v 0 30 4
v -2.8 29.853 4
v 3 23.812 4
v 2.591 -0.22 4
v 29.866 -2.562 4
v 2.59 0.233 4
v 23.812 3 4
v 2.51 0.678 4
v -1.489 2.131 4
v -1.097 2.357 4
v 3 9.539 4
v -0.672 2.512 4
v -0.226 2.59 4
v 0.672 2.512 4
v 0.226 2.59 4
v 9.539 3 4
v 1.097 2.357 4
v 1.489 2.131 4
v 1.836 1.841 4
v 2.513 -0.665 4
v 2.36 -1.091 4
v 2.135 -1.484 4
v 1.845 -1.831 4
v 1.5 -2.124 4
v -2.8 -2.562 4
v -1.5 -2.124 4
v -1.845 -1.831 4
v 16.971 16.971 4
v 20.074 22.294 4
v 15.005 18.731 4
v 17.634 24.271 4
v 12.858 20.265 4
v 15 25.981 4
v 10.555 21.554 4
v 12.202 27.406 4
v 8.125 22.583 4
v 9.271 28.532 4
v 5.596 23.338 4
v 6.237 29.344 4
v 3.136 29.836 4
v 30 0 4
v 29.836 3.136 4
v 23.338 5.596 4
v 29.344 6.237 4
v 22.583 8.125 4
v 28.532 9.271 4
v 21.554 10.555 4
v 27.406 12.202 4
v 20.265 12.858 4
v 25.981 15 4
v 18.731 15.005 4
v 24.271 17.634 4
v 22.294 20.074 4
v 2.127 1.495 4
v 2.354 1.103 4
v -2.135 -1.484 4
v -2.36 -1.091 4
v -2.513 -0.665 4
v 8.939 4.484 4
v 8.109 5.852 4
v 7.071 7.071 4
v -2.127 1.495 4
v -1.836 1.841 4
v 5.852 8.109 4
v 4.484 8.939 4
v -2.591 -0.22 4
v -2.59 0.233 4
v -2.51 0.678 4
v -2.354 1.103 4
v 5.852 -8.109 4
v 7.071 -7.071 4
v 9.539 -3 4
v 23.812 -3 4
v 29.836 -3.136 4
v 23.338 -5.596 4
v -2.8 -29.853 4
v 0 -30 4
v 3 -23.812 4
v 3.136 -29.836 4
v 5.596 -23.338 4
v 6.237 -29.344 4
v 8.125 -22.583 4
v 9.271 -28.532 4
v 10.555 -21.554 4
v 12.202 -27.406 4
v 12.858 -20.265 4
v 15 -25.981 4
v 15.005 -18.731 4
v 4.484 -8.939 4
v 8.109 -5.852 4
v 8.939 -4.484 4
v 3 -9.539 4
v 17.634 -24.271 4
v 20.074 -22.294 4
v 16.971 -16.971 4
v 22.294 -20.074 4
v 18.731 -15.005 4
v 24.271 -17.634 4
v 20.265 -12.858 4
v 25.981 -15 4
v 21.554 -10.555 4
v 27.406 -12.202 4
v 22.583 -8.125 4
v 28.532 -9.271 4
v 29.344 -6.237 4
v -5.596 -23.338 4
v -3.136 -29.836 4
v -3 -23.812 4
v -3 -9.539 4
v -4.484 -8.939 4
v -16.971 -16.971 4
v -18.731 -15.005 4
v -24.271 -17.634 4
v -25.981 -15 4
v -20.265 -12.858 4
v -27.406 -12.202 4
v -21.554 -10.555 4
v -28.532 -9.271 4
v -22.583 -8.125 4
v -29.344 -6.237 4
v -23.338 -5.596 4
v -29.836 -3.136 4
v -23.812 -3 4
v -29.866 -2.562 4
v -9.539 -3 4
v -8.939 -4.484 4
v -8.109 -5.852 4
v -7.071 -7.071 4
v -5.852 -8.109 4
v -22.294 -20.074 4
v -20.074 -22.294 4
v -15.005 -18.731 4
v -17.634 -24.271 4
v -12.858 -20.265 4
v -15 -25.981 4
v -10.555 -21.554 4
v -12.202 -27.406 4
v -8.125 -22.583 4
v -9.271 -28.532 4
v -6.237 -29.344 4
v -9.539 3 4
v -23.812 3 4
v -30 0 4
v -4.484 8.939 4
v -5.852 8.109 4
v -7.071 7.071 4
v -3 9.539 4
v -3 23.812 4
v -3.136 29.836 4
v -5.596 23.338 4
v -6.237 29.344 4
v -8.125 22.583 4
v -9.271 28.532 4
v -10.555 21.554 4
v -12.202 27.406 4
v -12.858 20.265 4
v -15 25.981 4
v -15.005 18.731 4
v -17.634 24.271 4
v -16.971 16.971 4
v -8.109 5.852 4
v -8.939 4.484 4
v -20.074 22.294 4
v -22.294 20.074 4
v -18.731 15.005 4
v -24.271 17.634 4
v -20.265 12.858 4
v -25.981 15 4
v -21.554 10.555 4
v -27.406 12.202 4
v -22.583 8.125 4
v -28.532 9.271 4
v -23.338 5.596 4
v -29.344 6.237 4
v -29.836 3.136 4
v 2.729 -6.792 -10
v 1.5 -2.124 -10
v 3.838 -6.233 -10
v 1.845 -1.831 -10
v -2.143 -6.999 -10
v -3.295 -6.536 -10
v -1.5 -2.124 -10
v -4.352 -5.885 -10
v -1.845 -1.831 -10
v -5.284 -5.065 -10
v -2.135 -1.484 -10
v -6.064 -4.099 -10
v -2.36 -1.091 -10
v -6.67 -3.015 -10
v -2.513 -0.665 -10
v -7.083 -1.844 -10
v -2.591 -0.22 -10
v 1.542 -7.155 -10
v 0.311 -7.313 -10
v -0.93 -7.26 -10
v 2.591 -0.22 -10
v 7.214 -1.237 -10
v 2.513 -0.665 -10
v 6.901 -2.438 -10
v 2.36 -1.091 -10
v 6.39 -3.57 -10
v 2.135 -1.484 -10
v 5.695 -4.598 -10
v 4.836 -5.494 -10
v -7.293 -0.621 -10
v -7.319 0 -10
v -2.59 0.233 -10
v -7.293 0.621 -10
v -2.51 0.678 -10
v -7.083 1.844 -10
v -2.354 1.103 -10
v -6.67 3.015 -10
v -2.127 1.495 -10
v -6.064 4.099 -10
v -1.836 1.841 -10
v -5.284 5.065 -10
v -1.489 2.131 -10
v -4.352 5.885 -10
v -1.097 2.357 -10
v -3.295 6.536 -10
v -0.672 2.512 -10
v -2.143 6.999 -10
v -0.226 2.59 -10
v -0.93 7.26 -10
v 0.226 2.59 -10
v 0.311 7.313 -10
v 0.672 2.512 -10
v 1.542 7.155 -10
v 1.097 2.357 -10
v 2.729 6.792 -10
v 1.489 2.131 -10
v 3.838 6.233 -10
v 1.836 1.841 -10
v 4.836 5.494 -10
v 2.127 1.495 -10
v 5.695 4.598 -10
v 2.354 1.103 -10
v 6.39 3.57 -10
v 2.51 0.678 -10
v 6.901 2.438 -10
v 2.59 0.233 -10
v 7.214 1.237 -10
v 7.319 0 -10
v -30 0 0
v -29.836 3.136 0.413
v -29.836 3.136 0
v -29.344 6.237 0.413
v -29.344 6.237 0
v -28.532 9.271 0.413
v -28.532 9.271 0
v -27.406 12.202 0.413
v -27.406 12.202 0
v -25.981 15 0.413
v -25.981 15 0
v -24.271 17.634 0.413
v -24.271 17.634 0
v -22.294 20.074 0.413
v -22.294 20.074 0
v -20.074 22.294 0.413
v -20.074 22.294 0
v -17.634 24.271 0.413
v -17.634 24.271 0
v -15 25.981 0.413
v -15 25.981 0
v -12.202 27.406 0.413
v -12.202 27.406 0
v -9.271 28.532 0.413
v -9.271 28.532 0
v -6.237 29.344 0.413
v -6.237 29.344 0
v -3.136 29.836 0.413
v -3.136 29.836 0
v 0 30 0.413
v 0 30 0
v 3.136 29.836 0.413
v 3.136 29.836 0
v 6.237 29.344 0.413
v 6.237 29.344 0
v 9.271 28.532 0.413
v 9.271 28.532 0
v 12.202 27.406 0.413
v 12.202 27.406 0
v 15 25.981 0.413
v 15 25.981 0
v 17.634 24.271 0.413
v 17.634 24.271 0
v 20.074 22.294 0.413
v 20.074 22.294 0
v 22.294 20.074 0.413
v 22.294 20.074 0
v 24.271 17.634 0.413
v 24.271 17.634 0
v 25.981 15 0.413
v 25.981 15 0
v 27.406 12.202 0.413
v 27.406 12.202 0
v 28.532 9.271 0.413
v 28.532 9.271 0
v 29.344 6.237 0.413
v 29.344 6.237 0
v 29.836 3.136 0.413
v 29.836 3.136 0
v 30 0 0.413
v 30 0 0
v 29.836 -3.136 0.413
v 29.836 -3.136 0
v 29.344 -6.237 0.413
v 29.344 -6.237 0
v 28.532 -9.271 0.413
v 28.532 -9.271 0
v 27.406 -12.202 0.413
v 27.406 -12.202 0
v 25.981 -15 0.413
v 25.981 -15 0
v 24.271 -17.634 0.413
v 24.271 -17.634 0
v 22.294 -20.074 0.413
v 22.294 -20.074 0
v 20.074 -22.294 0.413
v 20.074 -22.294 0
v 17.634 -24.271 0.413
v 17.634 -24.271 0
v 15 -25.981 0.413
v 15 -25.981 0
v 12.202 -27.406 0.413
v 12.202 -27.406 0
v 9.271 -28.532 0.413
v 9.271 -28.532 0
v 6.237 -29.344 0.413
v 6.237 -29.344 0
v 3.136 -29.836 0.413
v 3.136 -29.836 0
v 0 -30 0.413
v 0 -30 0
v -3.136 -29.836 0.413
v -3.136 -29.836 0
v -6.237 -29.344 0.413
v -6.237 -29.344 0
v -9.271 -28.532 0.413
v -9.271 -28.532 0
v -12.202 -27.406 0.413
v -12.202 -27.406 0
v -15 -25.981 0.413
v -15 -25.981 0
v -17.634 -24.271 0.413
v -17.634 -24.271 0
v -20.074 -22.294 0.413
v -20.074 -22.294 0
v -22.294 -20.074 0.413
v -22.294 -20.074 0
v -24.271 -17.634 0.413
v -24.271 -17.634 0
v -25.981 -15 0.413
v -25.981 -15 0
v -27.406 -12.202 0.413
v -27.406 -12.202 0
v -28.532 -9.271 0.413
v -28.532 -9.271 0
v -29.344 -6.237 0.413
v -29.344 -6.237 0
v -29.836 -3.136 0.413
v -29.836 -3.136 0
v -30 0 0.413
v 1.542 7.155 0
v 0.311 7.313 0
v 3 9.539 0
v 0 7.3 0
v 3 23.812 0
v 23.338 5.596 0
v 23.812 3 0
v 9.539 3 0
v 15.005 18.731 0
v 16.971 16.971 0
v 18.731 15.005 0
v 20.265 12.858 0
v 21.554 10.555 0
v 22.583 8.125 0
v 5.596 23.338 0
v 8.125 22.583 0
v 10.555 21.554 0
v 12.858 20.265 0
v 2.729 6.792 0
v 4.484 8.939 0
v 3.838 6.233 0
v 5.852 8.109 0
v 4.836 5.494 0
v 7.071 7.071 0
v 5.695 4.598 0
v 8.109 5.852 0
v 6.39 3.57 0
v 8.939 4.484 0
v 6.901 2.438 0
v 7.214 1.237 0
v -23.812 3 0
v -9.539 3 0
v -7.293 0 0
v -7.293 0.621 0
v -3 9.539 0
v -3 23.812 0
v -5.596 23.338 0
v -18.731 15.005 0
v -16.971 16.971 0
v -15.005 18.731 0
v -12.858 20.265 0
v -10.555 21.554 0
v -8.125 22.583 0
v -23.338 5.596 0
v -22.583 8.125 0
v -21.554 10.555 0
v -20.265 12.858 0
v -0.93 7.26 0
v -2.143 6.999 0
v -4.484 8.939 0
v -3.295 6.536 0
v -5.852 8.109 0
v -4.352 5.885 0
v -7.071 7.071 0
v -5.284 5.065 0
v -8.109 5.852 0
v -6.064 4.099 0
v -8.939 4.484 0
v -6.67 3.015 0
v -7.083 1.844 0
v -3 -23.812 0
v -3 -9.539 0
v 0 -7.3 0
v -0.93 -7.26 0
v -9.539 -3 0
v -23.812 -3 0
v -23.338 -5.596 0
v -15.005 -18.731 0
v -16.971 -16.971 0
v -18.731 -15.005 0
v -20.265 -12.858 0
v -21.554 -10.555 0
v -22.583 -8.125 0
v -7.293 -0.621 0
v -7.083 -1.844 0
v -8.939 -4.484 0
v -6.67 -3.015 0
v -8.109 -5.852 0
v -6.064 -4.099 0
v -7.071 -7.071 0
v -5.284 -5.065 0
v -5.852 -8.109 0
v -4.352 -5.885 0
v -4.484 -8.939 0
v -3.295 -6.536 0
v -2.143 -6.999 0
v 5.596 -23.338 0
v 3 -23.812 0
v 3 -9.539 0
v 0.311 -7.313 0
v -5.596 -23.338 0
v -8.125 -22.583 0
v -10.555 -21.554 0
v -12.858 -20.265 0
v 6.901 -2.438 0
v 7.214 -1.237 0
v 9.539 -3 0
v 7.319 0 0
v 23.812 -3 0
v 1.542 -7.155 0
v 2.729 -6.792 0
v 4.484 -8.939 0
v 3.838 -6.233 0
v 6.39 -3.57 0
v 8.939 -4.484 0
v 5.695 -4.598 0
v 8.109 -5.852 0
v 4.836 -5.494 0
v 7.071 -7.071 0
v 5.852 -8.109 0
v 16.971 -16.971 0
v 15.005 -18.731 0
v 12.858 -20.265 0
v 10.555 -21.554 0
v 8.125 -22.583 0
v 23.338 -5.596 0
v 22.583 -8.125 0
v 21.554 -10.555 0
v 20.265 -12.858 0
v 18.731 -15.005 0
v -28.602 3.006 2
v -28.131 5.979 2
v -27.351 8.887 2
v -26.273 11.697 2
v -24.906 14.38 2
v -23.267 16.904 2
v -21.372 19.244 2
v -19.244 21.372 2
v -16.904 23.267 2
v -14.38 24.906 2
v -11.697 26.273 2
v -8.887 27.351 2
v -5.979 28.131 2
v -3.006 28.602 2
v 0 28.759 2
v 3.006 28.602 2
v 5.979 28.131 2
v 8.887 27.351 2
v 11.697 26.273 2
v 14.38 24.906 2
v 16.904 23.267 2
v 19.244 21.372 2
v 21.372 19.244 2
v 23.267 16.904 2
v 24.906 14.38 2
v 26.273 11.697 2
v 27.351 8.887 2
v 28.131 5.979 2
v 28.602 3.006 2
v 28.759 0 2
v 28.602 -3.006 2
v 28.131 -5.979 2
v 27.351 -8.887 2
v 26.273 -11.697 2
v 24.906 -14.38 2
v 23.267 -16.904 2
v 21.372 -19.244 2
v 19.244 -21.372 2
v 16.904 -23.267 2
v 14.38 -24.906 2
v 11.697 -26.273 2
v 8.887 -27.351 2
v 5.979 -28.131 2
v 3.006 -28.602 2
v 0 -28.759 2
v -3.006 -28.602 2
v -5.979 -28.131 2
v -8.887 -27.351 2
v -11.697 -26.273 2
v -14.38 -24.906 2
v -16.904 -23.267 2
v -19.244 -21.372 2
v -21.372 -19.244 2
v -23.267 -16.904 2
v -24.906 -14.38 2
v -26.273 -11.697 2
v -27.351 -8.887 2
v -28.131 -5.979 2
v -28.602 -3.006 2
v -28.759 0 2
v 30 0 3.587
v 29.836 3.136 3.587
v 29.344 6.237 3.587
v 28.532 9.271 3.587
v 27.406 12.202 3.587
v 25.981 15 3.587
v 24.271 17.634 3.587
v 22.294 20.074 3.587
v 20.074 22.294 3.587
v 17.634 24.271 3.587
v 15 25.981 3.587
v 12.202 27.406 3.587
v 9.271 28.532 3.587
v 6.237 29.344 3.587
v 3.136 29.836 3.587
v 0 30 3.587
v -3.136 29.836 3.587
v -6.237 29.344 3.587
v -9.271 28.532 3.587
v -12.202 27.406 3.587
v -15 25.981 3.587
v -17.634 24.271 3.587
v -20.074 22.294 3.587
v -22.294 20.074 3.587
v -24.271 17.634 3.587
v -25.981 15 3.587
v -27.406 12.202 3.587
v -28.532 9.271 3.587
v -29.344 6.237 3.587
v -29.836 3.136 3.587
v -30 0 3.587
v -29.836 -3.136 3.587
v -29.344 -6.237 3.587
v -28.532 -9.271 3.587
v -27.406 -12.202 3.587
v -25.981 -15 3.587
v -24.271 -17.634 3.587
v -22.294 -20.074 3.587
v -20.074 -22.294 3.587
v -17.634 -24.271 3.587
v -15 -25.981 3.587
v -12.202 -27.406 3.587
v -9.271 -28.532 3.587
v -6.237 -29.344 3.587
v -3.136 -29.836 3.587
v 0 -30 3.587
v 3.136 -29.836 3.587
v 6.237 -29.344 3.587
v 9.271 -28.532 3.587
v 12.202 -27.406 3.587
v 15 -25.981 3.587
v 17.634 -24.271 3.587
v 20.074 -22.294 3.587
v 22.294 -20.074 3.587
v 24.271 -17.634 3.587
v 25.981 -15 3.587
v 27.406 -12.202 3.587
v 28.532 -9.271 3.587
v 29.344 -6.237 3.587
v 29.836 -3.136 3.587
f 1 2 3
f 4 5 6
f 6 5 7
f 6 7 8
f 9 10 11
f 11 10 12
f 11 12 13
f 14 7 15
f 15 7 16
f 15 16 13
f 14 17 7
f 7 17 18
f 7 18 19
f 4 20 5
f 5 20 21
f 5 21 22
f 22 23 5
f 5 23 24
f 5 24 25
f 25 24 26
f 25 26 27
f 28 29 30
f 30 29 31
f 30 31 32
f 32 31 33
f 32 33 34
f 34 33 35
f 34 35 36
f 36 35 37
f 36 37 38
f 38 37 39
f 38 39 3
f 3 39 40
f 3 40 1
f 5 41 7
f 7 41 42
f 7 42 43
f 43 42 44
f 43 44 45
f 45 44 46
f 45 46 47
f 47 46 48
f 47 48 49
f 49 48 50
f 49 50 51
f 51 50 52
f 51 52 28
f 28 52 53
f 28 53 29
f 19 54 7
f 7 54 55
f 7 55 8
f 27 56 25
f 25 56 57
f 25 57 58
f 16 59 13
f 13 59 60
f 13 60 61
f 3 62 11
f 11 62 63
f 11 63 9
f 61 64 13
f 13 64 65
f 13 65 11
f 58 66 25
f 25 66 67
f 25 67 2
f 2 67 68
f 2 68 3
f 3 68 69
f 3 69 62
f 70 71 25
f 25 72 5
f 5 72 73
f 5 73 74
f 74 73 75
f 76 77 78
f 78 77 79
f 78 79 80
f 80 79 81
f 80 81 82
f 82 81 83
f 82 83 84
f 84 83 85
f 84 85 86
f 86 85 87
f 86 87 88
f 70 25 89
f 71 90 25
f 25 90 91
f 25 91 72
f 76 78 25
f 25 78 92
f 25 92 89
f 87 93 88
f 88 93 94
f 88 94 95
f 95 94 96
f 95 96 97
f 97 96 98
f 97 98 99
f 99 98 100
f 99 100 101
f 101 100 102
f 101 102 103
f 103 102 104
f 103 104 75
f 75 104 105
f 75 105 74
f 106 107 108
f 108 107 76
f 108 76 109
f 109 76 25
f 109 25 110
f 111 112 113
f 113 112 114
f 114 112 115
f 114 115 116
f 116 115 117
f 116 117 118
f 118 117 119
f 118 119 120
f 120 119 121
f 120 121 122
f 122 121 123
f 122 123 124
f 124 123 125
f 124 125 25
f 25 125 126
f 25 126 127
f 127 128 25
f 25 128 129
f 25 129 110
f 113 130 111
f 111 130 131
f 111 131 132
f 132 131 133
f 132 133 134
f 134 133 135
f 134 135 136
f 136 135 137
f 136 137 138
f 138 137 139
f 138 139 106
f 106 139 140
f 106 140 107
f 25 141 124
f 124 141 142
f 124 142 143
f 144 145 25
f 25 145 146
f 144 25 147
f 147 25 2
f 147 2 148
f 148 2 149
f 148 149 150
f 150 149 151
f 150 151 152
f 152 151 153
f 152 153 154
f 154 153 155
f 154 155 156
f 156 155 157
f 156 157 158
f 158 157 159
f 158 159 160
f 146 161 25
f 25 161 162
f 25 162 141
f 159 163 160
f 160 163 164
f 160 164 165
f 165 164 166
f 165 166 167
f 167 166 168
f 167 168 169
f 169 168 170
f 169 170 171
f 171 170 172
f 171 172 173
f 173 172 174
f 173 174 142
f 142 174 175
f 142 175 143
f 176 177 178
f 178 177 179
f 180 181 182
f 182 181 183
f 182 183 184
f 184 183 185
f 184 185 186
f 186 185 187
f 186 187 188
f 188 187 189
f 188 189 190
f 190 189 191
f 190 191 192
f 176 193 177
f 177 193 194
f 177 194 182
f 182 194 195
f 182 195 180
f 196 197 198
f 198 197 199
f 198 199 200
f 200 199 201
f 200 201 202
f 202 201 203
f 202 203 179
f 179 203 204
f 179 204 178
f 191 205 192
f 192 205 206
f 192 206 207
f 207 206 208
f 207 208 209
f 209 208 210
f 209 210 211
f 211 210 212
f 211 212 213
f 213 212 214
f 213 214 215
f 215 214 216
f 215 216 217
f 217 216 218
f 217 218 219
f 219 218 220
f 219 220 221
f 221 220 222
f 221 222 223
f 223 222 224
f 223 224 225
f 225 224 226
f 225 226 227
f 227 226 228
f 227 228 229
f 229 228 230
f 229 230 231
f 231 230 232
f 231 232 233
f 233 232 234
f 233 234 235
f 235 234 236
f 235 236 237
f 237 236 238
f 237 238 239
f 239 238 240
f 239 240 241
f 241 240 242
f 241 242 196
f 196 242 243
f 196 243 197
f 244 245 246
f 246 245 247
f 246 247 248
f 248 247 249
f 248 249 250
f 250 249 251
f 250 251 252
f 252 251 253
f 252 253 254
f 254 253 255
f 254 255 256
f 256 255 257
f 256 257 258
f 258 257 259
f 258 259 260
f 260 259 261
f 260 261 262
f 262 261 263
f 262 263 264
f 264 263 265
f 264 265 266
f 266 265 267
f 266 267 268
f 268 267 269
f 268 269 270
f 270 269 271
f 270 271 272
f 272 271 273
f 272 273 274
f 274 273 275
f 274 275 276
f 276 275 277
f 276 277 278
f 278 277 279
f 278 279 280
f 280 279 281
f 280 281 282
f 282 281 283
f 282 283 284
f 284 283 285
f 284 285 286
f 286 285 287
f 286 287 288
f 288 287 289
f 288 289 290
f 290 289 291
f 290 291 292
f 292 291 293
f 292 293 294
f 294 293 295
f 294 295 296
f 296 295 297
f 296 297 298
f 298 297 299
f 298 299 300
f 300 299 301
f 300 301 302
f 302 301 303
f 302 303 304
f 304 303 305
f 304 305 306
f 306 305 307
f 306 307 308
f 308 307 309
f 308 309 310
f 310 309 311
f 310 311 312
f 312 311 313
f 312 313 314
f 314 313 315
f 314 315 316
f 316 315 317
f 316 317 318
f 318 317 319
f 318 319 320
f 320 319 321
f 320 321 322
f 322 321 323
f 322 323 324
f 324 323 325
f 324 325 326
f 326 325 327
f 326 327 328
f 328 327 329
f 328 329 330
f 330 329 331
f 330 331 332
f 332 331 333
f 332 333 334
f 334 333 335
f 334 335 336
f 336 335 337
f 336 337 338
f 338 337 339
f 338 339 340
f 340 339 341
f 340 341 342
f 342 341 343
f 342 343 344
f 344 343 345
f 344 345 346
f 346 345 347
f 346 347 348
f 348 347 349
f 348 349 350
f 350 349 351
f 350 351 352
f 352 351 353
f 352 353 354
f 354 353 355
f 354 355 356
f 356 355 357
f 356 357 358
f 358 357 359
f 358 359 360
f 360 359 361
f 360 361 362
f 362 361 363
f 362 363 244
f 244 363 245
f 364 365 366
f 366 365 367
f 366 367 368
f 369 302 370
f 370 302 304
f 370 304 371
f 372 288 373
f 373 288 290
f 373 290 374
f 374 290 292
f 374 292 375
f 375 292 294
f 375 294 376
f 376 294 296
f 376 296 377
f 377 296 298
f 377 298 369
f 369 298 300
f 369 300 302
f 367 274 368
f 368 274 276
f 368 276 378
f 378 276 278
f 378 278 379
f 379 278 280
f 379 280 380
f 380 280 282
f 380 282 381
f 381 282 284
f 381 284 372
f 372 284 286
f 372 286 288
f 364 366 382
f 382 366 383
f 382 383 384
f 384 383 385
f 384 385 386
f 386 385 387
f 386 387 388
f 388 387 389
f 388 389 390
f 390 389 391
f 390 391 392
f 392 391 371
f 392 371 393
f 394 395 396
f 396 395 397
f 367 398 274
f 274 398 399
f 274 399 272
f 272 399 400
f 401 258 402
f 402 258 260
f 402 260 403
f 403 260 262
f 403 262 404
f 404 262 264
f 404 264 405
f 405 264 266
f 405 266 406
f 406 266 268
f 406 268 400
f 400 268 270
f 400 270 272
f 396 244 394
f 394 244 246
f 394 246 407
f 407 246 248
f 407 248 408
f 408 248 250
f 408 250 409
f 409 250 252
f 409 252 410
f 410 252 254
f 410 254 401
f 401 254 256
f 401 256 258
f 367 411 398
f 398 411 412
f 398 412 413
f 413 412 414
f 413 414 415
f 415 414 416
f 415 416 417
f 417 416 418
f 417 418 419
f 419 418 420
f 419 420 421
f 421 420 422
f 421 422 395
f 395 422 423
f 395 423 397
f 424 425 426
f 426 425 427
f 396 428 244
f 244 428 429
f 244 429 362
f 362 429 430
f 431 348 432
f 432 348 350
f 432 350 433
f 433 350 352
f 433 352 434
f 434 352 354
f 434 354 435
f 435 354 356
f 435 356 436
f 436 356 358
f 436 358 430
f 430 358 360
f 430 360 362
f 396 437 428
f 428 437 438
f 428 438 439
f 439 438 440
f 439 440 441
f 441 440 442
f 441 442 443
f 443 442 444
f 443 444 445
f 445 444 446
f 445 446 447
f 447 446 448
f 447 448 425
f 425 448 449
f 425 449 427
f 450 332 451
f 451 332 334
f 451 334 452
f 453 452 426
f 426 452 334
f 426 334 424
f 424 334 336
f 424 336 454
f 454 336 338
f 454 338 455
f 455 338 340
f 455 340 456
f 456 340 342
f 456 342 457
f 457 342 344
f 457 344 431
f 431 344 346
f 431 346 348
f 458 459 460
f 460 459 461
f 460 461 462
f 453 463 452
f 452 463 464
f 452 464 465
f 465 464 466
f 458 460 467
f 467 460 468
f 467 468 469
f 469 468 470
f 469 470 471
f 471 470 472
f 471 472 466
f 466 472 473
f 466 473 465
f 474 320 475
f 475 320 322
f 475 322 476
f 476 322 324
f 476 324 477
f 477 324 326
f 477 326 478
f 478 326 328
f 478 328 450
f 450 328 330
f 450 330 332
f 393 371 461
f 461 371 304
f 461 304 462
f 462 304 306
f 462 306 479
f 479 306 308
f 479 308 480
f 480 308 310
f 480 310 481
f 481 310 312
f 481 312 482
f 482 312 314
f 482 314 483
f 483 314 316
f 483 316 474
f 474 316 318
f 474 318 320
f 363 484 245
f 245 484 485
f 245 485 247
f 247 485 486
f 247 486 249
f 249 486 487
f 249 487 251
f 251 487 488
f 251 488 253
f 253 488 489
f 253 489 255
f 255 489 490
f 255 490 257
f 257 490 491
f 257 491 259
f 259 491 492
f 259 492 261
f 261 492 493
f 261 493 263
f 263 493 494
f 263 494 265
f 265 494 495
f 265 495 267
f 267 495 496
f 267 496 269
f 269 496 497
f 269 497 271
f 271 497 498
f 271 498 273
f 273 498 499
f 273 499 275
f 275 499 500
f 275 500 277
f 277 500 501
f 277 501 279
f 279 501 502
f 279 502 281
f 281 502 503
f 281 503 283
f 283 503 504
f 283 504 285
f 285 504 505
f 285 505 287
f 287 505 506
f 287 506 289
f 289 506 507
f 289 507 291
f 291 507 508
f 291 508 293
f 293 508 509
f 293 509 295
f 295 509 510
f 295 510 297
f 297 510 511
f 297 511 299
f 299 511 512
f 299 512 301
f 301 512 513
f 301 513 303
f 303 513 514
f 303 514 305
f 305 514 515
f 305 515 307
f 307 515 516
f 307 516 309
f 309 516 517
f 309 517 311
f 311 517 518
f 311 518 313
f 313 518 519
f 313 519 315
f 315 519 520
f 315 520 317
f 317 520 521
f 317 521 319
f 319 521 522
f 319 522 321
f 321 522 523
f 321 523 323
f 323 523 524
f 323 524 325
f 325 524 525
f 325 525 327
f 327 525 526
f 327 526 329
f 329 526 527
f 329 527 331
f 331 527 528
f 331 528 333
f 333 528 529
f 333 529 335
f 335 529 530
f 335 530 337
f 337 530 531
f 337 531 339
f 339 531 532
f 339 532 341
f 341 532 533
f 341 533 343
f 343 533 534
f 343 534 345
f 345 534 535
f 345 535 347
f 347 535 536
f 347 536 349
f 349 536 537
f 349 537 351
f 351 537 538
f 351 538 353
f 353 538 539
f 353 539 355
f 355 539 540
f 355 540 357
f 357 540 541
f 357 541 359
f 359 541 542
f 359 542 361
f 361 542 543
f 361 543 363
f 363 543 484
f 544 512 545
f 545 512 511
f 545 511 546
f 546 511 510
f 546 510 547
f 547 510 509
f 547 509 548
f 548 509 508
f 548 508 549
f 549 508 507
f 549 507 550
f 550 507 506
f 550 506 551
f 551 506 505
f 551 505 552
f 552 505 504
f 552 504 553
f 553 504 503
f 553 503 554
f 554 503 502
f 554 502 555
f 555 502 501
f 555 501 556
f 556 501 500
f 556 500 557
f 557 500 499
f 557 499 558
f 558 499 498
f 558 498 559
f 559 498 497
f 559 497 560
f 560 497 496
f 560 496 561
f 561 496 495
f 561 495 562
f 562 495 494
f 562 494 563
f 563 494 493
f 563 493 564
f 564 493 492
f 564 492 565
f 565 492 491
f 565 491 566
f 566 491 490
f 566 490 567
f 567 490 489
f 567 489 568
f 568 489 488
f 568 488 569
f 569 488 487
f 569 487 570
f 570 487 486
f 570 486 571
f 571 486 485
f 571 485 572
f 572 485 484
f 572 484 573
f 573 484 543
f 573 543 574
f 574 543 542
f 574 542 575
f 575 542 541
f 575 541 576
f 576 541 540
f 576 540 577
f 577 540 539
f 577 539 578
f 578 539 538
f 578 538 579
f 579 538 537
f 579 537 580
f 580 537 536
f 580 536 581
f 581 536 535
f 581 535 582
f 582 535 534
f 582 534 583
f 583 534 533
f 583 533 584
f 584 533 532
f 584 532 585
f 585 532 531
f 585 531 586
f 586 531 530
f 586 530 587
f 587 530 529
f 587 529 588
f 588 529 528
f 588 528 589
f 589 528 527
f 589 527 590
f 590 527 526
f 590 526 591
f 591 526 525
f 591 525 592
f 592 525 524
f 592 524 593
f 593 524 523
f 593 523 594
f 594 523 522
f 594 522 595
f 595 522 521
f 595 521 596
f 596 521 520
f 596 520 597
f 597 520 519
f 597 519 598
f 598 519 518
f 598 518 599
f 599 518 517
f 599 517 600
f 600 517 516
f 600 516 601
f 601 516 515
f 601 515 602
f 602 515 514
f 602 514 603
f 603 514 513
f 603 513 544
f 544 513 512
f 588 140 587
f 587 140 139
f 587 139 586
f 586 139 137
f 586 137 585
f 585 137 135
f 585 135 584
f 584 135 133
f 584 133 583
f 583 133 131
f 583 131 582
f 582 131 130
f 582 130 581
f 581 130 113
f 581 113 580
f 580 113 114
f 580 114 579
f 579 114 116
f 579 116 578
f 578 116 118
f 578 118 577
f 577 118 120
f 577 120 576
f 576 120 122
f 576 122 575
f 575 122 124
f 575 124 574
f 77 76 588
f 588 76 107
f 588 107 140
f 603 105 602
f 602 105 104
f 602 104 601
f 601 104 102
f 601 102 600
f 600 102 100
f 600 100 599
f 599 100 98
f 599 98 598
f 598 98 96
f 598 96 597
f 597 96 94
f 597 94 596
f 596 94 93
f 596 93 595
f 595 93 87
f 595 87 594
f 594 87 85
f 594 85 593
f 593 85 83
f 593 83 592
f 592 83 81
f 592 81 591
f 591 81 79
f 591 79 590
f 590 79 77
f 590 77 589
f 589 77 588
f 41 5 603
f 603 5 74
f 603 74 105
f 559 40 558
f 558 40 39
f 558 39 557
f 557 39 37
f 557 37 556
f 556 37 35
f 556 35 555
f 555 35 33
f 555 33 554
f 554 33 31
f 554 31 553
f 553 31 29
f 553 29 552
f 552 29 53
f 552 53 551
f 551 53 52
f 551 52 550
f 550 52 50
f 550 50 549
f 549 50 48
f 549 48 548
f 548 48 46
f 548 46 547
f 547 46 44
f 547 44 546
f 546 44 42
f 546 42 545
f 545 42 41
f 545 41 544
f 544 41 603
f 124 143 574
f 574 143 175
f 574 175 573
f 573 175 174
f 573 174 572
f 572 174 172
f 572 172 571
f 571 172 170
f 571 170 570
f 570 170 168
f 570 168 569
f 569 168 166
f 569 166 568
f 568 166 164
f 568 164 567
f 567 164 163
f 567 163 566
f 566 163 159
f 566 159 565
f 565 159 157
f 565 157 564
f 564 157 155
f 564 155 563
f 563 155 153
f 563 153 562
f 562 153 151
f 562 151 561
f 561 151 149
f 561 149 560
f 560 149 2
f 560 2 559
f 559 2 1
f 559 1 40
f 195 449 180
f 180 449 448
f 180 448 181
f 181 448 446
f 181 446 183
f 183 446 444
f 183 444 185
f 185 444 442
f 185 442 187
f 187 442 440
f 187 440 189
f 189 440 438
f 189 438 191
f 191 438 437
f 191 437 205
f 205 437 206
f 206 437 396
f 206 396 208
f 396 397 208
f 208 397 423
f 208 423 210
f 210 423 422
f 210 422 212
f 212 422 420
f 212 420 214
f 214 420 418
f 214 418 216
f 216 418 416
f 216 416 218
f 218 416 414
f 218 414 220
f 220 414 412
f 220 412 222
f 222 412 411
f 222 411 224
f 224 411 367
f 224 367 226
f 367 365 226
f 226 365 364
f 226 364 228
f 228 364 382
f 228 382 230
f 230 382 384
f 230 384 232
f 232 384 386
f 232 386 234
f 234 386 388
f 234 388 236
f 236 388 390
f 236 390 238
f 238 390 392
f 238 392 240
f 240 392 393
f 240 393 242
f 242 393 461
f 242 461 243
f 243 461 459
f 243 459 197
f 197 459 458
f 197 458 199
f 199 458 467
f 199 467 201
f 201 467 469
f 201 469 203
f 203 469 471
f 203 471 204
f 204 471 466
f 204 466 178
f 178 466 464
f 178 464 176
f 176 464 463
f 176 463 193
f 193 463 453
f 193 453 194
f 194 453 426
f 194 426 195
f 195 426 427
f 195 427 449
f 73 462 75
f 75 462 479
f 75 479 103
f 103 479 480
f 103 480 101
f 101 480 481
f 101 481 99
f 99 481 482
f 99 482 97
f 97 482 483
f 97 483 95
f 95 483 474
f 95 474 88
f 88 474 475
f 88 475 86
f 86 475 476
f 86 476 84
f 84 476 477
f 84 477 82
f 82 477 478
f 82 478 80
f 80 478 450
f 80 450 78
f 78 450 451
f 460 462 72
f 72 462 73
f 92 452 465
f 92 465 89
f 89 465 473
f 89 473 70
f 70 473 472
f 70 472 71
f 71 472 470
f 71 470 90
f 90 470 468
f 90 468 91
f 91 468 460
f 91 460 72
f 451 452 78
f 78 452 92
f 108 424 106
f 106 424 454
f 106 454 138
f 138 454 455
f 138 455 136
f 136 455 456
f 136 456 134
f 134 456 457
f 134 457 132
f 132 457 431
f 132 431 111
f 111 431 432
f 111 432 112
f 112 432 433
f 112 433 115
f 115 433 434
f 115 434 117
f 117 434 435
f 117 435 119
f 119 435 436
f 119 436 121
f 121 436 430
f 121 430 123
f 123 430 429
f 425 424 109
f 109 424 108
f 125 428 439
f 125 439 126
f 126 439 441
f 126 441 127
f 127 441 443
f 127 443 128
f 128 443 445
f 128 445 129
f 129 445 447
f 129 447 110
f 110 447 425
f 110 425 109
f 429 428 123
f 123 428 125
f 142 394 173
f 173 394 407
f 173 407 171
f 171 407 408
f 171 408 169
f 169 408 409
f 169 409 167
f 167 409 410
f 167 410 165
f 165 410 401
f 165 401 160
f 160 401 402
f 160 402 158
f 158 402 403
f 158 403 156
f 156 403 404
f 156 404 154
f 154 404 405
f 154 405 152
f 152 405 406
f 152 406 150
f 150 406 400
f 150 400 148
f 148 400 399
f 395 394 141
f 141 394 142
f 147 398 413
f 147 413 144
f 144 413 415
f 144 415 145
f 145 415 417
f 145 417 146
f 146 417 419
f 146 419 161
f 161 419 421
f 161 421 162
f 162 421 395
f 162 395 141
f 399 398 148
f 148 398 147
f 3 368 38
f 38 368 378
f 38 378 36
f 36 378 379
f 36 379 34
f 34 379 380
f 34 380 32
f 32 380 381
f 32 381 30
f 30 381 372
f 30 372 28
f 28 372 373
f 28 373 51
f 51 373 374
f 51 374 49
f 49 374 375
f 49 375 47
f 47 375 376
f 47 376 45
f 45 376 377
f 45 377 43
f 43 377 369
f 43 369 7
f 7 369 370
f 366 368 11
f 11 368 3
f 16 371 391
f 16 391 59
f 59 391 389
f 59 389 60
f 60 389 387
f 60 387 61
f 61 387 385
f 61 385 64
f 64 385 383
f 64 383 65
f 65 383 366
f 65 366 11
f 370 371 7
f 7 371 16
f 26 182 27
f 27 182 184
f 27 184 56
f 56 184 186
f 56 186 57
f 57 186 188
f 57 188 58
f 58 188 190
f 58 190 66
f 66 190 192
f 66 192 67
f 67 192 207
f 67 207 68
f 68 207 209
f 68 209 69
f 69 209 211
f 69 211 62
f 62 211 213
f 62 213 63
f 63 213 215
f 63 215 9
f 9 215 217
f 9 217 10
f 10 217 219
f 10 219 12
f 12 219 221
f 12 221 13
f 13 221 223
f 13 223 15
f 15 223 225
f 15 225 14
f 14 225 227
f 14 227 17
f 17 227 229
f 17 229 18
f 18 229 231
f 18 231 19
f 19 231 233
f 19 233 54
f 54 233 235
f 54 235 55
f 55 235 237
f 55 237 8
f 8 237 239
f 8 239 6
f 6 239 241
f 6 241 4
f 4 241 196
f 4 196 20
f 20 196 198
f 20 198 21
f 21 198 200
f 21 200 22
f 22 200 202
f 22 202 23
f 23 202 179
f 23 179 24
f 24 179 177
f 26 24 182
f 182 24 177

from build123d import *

# Parameters (mm, degrees)
CROQUIS1_R              = 30
SALIENTE_EXTRUIR1_DEPTH = 4
CROQUIS4_R              = 7.319391613
SALIENTE_EXTRUIR2_DEPTH = 10
CORTAR_EXTRUIR1_DEPTH   = 10
CORTAR_EXTRUIR2_DEPTH   = 15


with BuildPart() as part:
    # Croquis1 → Saliente-Extruir1 (new body)
    with BuildSketch(Plane.XY):
        Circle(CROQUIS1_R)
    extrude(amount=SALIENTE_EXTRUIR1_DEPTH)

    # Croquis3 → Cortar-Revolución1 (revolve, cut)
    with BuildSketch(Plane(origin=(0, 0, 0), x_dir=(1, 0, 0), z_dir=(0, 1, 0))):
        Polygon((-30, -4), (-30, -3.587135196), (-28.759048166, -2), (-30, -0.412864804), (-30, 0), (-32.403502023, 0), (-32.403502023, -4), align=None)
    revolve(axis=Axis((0, 0, -0.500745856), (0, 0, 1)), mode=Mode.SUBTRACT)

    # Croquis4 → Saliente-Extruir2 (add)
    with BuildSketch(Plane(origin=(0, 0, 0), x_dir=(-1, 0, 0), z_dir=(0, 0, -1))):
        Circle(CROQUIS4_R)
    extrude(amount=SALIENTE_EXTRUIR2_DEPTH)

    # Croquis5 → Cortar-Extruir1 (cut)
    with BuildSketch(Plane(origin=(0, 0, 0), x_dir=(-1, 0, 0), z_dir=(0, 0, -1))):
        with BuildLine():
            Line((-23.8117618, -3), (-9.539392014, -3))
            ThreePointArc((-9.539392014, -3), (-7.071067812, -7.071067812), (-3, -9.539392014))
            Line((-3, -9.539392014), (-3, -23.8117618))
            ThreePointArc((-3, -23.8117618), (-16.970562748, -16.970562748), (-23.8117618, -3))
        make_face()
        with BuildLine():
            Line((-23.8117618, 3), (-9.539392014, 3))
            ThreePointArc((-9.539392014, 3), (-7.071067812, 7.071067812), (-3, 9.539392014))
            Line((-3, 9.539392014), (-3, 23.8117618))
            ThreePointArc((-3, 23.8117618), (-16.970562748, 16.970562748), (-23.8117618, 3))
        make_face()
        with BuildLine():
            Line((3, 23.8117618), (3, 9.539392014))
            ThreePointArc((3, 9.539392014), (7.071067812, 7.071067812), (9.539392014, 3))
            Line((9.539392014, 3), (23.8117618, 3))
            ThreePointArc((23.8117618, 3), (16.970562748, 16.970562748), (3, 23.8117618))
        make_face()
        with BuildLine():
            Line((23.8117618, -3), (9.539392014, -3))
            ThreePointArc((9.539392014, -3), (7.071067812, -7.071067812), (3, -9.539392014))
            Line((3, -9.539392014), (3, -23.8117618))
            ThreePointArc((3, -23.8117618), (16.970562748, -16.970562748), (23.8117618, -3))
        make_face()
    extrude(amount=-CORTAR_EXTRUIR1_DEPTH, mode=Mode.SUBTRACT)

    # Croquis6 → Cortar-Extruir2 (cut, through all)
    with BuildSketch(Plane(origin=(0, 0, -10), x_dir=(-1, 0, 0), z_dir=(0, 0, -1))):
        with BuildLine():
            Line((1.5, -2.123676058), (-1.5, -2.123676058))
            ThreePointArc((-1.5, -2.123676058), (0, 2.6), (1.5, -2.123676058))
        make_face()
    extrude(amount=-CORTAR_EXTRUIR2_DEPTH, mode=Mode.SUBTRACT)


solid = part.part
